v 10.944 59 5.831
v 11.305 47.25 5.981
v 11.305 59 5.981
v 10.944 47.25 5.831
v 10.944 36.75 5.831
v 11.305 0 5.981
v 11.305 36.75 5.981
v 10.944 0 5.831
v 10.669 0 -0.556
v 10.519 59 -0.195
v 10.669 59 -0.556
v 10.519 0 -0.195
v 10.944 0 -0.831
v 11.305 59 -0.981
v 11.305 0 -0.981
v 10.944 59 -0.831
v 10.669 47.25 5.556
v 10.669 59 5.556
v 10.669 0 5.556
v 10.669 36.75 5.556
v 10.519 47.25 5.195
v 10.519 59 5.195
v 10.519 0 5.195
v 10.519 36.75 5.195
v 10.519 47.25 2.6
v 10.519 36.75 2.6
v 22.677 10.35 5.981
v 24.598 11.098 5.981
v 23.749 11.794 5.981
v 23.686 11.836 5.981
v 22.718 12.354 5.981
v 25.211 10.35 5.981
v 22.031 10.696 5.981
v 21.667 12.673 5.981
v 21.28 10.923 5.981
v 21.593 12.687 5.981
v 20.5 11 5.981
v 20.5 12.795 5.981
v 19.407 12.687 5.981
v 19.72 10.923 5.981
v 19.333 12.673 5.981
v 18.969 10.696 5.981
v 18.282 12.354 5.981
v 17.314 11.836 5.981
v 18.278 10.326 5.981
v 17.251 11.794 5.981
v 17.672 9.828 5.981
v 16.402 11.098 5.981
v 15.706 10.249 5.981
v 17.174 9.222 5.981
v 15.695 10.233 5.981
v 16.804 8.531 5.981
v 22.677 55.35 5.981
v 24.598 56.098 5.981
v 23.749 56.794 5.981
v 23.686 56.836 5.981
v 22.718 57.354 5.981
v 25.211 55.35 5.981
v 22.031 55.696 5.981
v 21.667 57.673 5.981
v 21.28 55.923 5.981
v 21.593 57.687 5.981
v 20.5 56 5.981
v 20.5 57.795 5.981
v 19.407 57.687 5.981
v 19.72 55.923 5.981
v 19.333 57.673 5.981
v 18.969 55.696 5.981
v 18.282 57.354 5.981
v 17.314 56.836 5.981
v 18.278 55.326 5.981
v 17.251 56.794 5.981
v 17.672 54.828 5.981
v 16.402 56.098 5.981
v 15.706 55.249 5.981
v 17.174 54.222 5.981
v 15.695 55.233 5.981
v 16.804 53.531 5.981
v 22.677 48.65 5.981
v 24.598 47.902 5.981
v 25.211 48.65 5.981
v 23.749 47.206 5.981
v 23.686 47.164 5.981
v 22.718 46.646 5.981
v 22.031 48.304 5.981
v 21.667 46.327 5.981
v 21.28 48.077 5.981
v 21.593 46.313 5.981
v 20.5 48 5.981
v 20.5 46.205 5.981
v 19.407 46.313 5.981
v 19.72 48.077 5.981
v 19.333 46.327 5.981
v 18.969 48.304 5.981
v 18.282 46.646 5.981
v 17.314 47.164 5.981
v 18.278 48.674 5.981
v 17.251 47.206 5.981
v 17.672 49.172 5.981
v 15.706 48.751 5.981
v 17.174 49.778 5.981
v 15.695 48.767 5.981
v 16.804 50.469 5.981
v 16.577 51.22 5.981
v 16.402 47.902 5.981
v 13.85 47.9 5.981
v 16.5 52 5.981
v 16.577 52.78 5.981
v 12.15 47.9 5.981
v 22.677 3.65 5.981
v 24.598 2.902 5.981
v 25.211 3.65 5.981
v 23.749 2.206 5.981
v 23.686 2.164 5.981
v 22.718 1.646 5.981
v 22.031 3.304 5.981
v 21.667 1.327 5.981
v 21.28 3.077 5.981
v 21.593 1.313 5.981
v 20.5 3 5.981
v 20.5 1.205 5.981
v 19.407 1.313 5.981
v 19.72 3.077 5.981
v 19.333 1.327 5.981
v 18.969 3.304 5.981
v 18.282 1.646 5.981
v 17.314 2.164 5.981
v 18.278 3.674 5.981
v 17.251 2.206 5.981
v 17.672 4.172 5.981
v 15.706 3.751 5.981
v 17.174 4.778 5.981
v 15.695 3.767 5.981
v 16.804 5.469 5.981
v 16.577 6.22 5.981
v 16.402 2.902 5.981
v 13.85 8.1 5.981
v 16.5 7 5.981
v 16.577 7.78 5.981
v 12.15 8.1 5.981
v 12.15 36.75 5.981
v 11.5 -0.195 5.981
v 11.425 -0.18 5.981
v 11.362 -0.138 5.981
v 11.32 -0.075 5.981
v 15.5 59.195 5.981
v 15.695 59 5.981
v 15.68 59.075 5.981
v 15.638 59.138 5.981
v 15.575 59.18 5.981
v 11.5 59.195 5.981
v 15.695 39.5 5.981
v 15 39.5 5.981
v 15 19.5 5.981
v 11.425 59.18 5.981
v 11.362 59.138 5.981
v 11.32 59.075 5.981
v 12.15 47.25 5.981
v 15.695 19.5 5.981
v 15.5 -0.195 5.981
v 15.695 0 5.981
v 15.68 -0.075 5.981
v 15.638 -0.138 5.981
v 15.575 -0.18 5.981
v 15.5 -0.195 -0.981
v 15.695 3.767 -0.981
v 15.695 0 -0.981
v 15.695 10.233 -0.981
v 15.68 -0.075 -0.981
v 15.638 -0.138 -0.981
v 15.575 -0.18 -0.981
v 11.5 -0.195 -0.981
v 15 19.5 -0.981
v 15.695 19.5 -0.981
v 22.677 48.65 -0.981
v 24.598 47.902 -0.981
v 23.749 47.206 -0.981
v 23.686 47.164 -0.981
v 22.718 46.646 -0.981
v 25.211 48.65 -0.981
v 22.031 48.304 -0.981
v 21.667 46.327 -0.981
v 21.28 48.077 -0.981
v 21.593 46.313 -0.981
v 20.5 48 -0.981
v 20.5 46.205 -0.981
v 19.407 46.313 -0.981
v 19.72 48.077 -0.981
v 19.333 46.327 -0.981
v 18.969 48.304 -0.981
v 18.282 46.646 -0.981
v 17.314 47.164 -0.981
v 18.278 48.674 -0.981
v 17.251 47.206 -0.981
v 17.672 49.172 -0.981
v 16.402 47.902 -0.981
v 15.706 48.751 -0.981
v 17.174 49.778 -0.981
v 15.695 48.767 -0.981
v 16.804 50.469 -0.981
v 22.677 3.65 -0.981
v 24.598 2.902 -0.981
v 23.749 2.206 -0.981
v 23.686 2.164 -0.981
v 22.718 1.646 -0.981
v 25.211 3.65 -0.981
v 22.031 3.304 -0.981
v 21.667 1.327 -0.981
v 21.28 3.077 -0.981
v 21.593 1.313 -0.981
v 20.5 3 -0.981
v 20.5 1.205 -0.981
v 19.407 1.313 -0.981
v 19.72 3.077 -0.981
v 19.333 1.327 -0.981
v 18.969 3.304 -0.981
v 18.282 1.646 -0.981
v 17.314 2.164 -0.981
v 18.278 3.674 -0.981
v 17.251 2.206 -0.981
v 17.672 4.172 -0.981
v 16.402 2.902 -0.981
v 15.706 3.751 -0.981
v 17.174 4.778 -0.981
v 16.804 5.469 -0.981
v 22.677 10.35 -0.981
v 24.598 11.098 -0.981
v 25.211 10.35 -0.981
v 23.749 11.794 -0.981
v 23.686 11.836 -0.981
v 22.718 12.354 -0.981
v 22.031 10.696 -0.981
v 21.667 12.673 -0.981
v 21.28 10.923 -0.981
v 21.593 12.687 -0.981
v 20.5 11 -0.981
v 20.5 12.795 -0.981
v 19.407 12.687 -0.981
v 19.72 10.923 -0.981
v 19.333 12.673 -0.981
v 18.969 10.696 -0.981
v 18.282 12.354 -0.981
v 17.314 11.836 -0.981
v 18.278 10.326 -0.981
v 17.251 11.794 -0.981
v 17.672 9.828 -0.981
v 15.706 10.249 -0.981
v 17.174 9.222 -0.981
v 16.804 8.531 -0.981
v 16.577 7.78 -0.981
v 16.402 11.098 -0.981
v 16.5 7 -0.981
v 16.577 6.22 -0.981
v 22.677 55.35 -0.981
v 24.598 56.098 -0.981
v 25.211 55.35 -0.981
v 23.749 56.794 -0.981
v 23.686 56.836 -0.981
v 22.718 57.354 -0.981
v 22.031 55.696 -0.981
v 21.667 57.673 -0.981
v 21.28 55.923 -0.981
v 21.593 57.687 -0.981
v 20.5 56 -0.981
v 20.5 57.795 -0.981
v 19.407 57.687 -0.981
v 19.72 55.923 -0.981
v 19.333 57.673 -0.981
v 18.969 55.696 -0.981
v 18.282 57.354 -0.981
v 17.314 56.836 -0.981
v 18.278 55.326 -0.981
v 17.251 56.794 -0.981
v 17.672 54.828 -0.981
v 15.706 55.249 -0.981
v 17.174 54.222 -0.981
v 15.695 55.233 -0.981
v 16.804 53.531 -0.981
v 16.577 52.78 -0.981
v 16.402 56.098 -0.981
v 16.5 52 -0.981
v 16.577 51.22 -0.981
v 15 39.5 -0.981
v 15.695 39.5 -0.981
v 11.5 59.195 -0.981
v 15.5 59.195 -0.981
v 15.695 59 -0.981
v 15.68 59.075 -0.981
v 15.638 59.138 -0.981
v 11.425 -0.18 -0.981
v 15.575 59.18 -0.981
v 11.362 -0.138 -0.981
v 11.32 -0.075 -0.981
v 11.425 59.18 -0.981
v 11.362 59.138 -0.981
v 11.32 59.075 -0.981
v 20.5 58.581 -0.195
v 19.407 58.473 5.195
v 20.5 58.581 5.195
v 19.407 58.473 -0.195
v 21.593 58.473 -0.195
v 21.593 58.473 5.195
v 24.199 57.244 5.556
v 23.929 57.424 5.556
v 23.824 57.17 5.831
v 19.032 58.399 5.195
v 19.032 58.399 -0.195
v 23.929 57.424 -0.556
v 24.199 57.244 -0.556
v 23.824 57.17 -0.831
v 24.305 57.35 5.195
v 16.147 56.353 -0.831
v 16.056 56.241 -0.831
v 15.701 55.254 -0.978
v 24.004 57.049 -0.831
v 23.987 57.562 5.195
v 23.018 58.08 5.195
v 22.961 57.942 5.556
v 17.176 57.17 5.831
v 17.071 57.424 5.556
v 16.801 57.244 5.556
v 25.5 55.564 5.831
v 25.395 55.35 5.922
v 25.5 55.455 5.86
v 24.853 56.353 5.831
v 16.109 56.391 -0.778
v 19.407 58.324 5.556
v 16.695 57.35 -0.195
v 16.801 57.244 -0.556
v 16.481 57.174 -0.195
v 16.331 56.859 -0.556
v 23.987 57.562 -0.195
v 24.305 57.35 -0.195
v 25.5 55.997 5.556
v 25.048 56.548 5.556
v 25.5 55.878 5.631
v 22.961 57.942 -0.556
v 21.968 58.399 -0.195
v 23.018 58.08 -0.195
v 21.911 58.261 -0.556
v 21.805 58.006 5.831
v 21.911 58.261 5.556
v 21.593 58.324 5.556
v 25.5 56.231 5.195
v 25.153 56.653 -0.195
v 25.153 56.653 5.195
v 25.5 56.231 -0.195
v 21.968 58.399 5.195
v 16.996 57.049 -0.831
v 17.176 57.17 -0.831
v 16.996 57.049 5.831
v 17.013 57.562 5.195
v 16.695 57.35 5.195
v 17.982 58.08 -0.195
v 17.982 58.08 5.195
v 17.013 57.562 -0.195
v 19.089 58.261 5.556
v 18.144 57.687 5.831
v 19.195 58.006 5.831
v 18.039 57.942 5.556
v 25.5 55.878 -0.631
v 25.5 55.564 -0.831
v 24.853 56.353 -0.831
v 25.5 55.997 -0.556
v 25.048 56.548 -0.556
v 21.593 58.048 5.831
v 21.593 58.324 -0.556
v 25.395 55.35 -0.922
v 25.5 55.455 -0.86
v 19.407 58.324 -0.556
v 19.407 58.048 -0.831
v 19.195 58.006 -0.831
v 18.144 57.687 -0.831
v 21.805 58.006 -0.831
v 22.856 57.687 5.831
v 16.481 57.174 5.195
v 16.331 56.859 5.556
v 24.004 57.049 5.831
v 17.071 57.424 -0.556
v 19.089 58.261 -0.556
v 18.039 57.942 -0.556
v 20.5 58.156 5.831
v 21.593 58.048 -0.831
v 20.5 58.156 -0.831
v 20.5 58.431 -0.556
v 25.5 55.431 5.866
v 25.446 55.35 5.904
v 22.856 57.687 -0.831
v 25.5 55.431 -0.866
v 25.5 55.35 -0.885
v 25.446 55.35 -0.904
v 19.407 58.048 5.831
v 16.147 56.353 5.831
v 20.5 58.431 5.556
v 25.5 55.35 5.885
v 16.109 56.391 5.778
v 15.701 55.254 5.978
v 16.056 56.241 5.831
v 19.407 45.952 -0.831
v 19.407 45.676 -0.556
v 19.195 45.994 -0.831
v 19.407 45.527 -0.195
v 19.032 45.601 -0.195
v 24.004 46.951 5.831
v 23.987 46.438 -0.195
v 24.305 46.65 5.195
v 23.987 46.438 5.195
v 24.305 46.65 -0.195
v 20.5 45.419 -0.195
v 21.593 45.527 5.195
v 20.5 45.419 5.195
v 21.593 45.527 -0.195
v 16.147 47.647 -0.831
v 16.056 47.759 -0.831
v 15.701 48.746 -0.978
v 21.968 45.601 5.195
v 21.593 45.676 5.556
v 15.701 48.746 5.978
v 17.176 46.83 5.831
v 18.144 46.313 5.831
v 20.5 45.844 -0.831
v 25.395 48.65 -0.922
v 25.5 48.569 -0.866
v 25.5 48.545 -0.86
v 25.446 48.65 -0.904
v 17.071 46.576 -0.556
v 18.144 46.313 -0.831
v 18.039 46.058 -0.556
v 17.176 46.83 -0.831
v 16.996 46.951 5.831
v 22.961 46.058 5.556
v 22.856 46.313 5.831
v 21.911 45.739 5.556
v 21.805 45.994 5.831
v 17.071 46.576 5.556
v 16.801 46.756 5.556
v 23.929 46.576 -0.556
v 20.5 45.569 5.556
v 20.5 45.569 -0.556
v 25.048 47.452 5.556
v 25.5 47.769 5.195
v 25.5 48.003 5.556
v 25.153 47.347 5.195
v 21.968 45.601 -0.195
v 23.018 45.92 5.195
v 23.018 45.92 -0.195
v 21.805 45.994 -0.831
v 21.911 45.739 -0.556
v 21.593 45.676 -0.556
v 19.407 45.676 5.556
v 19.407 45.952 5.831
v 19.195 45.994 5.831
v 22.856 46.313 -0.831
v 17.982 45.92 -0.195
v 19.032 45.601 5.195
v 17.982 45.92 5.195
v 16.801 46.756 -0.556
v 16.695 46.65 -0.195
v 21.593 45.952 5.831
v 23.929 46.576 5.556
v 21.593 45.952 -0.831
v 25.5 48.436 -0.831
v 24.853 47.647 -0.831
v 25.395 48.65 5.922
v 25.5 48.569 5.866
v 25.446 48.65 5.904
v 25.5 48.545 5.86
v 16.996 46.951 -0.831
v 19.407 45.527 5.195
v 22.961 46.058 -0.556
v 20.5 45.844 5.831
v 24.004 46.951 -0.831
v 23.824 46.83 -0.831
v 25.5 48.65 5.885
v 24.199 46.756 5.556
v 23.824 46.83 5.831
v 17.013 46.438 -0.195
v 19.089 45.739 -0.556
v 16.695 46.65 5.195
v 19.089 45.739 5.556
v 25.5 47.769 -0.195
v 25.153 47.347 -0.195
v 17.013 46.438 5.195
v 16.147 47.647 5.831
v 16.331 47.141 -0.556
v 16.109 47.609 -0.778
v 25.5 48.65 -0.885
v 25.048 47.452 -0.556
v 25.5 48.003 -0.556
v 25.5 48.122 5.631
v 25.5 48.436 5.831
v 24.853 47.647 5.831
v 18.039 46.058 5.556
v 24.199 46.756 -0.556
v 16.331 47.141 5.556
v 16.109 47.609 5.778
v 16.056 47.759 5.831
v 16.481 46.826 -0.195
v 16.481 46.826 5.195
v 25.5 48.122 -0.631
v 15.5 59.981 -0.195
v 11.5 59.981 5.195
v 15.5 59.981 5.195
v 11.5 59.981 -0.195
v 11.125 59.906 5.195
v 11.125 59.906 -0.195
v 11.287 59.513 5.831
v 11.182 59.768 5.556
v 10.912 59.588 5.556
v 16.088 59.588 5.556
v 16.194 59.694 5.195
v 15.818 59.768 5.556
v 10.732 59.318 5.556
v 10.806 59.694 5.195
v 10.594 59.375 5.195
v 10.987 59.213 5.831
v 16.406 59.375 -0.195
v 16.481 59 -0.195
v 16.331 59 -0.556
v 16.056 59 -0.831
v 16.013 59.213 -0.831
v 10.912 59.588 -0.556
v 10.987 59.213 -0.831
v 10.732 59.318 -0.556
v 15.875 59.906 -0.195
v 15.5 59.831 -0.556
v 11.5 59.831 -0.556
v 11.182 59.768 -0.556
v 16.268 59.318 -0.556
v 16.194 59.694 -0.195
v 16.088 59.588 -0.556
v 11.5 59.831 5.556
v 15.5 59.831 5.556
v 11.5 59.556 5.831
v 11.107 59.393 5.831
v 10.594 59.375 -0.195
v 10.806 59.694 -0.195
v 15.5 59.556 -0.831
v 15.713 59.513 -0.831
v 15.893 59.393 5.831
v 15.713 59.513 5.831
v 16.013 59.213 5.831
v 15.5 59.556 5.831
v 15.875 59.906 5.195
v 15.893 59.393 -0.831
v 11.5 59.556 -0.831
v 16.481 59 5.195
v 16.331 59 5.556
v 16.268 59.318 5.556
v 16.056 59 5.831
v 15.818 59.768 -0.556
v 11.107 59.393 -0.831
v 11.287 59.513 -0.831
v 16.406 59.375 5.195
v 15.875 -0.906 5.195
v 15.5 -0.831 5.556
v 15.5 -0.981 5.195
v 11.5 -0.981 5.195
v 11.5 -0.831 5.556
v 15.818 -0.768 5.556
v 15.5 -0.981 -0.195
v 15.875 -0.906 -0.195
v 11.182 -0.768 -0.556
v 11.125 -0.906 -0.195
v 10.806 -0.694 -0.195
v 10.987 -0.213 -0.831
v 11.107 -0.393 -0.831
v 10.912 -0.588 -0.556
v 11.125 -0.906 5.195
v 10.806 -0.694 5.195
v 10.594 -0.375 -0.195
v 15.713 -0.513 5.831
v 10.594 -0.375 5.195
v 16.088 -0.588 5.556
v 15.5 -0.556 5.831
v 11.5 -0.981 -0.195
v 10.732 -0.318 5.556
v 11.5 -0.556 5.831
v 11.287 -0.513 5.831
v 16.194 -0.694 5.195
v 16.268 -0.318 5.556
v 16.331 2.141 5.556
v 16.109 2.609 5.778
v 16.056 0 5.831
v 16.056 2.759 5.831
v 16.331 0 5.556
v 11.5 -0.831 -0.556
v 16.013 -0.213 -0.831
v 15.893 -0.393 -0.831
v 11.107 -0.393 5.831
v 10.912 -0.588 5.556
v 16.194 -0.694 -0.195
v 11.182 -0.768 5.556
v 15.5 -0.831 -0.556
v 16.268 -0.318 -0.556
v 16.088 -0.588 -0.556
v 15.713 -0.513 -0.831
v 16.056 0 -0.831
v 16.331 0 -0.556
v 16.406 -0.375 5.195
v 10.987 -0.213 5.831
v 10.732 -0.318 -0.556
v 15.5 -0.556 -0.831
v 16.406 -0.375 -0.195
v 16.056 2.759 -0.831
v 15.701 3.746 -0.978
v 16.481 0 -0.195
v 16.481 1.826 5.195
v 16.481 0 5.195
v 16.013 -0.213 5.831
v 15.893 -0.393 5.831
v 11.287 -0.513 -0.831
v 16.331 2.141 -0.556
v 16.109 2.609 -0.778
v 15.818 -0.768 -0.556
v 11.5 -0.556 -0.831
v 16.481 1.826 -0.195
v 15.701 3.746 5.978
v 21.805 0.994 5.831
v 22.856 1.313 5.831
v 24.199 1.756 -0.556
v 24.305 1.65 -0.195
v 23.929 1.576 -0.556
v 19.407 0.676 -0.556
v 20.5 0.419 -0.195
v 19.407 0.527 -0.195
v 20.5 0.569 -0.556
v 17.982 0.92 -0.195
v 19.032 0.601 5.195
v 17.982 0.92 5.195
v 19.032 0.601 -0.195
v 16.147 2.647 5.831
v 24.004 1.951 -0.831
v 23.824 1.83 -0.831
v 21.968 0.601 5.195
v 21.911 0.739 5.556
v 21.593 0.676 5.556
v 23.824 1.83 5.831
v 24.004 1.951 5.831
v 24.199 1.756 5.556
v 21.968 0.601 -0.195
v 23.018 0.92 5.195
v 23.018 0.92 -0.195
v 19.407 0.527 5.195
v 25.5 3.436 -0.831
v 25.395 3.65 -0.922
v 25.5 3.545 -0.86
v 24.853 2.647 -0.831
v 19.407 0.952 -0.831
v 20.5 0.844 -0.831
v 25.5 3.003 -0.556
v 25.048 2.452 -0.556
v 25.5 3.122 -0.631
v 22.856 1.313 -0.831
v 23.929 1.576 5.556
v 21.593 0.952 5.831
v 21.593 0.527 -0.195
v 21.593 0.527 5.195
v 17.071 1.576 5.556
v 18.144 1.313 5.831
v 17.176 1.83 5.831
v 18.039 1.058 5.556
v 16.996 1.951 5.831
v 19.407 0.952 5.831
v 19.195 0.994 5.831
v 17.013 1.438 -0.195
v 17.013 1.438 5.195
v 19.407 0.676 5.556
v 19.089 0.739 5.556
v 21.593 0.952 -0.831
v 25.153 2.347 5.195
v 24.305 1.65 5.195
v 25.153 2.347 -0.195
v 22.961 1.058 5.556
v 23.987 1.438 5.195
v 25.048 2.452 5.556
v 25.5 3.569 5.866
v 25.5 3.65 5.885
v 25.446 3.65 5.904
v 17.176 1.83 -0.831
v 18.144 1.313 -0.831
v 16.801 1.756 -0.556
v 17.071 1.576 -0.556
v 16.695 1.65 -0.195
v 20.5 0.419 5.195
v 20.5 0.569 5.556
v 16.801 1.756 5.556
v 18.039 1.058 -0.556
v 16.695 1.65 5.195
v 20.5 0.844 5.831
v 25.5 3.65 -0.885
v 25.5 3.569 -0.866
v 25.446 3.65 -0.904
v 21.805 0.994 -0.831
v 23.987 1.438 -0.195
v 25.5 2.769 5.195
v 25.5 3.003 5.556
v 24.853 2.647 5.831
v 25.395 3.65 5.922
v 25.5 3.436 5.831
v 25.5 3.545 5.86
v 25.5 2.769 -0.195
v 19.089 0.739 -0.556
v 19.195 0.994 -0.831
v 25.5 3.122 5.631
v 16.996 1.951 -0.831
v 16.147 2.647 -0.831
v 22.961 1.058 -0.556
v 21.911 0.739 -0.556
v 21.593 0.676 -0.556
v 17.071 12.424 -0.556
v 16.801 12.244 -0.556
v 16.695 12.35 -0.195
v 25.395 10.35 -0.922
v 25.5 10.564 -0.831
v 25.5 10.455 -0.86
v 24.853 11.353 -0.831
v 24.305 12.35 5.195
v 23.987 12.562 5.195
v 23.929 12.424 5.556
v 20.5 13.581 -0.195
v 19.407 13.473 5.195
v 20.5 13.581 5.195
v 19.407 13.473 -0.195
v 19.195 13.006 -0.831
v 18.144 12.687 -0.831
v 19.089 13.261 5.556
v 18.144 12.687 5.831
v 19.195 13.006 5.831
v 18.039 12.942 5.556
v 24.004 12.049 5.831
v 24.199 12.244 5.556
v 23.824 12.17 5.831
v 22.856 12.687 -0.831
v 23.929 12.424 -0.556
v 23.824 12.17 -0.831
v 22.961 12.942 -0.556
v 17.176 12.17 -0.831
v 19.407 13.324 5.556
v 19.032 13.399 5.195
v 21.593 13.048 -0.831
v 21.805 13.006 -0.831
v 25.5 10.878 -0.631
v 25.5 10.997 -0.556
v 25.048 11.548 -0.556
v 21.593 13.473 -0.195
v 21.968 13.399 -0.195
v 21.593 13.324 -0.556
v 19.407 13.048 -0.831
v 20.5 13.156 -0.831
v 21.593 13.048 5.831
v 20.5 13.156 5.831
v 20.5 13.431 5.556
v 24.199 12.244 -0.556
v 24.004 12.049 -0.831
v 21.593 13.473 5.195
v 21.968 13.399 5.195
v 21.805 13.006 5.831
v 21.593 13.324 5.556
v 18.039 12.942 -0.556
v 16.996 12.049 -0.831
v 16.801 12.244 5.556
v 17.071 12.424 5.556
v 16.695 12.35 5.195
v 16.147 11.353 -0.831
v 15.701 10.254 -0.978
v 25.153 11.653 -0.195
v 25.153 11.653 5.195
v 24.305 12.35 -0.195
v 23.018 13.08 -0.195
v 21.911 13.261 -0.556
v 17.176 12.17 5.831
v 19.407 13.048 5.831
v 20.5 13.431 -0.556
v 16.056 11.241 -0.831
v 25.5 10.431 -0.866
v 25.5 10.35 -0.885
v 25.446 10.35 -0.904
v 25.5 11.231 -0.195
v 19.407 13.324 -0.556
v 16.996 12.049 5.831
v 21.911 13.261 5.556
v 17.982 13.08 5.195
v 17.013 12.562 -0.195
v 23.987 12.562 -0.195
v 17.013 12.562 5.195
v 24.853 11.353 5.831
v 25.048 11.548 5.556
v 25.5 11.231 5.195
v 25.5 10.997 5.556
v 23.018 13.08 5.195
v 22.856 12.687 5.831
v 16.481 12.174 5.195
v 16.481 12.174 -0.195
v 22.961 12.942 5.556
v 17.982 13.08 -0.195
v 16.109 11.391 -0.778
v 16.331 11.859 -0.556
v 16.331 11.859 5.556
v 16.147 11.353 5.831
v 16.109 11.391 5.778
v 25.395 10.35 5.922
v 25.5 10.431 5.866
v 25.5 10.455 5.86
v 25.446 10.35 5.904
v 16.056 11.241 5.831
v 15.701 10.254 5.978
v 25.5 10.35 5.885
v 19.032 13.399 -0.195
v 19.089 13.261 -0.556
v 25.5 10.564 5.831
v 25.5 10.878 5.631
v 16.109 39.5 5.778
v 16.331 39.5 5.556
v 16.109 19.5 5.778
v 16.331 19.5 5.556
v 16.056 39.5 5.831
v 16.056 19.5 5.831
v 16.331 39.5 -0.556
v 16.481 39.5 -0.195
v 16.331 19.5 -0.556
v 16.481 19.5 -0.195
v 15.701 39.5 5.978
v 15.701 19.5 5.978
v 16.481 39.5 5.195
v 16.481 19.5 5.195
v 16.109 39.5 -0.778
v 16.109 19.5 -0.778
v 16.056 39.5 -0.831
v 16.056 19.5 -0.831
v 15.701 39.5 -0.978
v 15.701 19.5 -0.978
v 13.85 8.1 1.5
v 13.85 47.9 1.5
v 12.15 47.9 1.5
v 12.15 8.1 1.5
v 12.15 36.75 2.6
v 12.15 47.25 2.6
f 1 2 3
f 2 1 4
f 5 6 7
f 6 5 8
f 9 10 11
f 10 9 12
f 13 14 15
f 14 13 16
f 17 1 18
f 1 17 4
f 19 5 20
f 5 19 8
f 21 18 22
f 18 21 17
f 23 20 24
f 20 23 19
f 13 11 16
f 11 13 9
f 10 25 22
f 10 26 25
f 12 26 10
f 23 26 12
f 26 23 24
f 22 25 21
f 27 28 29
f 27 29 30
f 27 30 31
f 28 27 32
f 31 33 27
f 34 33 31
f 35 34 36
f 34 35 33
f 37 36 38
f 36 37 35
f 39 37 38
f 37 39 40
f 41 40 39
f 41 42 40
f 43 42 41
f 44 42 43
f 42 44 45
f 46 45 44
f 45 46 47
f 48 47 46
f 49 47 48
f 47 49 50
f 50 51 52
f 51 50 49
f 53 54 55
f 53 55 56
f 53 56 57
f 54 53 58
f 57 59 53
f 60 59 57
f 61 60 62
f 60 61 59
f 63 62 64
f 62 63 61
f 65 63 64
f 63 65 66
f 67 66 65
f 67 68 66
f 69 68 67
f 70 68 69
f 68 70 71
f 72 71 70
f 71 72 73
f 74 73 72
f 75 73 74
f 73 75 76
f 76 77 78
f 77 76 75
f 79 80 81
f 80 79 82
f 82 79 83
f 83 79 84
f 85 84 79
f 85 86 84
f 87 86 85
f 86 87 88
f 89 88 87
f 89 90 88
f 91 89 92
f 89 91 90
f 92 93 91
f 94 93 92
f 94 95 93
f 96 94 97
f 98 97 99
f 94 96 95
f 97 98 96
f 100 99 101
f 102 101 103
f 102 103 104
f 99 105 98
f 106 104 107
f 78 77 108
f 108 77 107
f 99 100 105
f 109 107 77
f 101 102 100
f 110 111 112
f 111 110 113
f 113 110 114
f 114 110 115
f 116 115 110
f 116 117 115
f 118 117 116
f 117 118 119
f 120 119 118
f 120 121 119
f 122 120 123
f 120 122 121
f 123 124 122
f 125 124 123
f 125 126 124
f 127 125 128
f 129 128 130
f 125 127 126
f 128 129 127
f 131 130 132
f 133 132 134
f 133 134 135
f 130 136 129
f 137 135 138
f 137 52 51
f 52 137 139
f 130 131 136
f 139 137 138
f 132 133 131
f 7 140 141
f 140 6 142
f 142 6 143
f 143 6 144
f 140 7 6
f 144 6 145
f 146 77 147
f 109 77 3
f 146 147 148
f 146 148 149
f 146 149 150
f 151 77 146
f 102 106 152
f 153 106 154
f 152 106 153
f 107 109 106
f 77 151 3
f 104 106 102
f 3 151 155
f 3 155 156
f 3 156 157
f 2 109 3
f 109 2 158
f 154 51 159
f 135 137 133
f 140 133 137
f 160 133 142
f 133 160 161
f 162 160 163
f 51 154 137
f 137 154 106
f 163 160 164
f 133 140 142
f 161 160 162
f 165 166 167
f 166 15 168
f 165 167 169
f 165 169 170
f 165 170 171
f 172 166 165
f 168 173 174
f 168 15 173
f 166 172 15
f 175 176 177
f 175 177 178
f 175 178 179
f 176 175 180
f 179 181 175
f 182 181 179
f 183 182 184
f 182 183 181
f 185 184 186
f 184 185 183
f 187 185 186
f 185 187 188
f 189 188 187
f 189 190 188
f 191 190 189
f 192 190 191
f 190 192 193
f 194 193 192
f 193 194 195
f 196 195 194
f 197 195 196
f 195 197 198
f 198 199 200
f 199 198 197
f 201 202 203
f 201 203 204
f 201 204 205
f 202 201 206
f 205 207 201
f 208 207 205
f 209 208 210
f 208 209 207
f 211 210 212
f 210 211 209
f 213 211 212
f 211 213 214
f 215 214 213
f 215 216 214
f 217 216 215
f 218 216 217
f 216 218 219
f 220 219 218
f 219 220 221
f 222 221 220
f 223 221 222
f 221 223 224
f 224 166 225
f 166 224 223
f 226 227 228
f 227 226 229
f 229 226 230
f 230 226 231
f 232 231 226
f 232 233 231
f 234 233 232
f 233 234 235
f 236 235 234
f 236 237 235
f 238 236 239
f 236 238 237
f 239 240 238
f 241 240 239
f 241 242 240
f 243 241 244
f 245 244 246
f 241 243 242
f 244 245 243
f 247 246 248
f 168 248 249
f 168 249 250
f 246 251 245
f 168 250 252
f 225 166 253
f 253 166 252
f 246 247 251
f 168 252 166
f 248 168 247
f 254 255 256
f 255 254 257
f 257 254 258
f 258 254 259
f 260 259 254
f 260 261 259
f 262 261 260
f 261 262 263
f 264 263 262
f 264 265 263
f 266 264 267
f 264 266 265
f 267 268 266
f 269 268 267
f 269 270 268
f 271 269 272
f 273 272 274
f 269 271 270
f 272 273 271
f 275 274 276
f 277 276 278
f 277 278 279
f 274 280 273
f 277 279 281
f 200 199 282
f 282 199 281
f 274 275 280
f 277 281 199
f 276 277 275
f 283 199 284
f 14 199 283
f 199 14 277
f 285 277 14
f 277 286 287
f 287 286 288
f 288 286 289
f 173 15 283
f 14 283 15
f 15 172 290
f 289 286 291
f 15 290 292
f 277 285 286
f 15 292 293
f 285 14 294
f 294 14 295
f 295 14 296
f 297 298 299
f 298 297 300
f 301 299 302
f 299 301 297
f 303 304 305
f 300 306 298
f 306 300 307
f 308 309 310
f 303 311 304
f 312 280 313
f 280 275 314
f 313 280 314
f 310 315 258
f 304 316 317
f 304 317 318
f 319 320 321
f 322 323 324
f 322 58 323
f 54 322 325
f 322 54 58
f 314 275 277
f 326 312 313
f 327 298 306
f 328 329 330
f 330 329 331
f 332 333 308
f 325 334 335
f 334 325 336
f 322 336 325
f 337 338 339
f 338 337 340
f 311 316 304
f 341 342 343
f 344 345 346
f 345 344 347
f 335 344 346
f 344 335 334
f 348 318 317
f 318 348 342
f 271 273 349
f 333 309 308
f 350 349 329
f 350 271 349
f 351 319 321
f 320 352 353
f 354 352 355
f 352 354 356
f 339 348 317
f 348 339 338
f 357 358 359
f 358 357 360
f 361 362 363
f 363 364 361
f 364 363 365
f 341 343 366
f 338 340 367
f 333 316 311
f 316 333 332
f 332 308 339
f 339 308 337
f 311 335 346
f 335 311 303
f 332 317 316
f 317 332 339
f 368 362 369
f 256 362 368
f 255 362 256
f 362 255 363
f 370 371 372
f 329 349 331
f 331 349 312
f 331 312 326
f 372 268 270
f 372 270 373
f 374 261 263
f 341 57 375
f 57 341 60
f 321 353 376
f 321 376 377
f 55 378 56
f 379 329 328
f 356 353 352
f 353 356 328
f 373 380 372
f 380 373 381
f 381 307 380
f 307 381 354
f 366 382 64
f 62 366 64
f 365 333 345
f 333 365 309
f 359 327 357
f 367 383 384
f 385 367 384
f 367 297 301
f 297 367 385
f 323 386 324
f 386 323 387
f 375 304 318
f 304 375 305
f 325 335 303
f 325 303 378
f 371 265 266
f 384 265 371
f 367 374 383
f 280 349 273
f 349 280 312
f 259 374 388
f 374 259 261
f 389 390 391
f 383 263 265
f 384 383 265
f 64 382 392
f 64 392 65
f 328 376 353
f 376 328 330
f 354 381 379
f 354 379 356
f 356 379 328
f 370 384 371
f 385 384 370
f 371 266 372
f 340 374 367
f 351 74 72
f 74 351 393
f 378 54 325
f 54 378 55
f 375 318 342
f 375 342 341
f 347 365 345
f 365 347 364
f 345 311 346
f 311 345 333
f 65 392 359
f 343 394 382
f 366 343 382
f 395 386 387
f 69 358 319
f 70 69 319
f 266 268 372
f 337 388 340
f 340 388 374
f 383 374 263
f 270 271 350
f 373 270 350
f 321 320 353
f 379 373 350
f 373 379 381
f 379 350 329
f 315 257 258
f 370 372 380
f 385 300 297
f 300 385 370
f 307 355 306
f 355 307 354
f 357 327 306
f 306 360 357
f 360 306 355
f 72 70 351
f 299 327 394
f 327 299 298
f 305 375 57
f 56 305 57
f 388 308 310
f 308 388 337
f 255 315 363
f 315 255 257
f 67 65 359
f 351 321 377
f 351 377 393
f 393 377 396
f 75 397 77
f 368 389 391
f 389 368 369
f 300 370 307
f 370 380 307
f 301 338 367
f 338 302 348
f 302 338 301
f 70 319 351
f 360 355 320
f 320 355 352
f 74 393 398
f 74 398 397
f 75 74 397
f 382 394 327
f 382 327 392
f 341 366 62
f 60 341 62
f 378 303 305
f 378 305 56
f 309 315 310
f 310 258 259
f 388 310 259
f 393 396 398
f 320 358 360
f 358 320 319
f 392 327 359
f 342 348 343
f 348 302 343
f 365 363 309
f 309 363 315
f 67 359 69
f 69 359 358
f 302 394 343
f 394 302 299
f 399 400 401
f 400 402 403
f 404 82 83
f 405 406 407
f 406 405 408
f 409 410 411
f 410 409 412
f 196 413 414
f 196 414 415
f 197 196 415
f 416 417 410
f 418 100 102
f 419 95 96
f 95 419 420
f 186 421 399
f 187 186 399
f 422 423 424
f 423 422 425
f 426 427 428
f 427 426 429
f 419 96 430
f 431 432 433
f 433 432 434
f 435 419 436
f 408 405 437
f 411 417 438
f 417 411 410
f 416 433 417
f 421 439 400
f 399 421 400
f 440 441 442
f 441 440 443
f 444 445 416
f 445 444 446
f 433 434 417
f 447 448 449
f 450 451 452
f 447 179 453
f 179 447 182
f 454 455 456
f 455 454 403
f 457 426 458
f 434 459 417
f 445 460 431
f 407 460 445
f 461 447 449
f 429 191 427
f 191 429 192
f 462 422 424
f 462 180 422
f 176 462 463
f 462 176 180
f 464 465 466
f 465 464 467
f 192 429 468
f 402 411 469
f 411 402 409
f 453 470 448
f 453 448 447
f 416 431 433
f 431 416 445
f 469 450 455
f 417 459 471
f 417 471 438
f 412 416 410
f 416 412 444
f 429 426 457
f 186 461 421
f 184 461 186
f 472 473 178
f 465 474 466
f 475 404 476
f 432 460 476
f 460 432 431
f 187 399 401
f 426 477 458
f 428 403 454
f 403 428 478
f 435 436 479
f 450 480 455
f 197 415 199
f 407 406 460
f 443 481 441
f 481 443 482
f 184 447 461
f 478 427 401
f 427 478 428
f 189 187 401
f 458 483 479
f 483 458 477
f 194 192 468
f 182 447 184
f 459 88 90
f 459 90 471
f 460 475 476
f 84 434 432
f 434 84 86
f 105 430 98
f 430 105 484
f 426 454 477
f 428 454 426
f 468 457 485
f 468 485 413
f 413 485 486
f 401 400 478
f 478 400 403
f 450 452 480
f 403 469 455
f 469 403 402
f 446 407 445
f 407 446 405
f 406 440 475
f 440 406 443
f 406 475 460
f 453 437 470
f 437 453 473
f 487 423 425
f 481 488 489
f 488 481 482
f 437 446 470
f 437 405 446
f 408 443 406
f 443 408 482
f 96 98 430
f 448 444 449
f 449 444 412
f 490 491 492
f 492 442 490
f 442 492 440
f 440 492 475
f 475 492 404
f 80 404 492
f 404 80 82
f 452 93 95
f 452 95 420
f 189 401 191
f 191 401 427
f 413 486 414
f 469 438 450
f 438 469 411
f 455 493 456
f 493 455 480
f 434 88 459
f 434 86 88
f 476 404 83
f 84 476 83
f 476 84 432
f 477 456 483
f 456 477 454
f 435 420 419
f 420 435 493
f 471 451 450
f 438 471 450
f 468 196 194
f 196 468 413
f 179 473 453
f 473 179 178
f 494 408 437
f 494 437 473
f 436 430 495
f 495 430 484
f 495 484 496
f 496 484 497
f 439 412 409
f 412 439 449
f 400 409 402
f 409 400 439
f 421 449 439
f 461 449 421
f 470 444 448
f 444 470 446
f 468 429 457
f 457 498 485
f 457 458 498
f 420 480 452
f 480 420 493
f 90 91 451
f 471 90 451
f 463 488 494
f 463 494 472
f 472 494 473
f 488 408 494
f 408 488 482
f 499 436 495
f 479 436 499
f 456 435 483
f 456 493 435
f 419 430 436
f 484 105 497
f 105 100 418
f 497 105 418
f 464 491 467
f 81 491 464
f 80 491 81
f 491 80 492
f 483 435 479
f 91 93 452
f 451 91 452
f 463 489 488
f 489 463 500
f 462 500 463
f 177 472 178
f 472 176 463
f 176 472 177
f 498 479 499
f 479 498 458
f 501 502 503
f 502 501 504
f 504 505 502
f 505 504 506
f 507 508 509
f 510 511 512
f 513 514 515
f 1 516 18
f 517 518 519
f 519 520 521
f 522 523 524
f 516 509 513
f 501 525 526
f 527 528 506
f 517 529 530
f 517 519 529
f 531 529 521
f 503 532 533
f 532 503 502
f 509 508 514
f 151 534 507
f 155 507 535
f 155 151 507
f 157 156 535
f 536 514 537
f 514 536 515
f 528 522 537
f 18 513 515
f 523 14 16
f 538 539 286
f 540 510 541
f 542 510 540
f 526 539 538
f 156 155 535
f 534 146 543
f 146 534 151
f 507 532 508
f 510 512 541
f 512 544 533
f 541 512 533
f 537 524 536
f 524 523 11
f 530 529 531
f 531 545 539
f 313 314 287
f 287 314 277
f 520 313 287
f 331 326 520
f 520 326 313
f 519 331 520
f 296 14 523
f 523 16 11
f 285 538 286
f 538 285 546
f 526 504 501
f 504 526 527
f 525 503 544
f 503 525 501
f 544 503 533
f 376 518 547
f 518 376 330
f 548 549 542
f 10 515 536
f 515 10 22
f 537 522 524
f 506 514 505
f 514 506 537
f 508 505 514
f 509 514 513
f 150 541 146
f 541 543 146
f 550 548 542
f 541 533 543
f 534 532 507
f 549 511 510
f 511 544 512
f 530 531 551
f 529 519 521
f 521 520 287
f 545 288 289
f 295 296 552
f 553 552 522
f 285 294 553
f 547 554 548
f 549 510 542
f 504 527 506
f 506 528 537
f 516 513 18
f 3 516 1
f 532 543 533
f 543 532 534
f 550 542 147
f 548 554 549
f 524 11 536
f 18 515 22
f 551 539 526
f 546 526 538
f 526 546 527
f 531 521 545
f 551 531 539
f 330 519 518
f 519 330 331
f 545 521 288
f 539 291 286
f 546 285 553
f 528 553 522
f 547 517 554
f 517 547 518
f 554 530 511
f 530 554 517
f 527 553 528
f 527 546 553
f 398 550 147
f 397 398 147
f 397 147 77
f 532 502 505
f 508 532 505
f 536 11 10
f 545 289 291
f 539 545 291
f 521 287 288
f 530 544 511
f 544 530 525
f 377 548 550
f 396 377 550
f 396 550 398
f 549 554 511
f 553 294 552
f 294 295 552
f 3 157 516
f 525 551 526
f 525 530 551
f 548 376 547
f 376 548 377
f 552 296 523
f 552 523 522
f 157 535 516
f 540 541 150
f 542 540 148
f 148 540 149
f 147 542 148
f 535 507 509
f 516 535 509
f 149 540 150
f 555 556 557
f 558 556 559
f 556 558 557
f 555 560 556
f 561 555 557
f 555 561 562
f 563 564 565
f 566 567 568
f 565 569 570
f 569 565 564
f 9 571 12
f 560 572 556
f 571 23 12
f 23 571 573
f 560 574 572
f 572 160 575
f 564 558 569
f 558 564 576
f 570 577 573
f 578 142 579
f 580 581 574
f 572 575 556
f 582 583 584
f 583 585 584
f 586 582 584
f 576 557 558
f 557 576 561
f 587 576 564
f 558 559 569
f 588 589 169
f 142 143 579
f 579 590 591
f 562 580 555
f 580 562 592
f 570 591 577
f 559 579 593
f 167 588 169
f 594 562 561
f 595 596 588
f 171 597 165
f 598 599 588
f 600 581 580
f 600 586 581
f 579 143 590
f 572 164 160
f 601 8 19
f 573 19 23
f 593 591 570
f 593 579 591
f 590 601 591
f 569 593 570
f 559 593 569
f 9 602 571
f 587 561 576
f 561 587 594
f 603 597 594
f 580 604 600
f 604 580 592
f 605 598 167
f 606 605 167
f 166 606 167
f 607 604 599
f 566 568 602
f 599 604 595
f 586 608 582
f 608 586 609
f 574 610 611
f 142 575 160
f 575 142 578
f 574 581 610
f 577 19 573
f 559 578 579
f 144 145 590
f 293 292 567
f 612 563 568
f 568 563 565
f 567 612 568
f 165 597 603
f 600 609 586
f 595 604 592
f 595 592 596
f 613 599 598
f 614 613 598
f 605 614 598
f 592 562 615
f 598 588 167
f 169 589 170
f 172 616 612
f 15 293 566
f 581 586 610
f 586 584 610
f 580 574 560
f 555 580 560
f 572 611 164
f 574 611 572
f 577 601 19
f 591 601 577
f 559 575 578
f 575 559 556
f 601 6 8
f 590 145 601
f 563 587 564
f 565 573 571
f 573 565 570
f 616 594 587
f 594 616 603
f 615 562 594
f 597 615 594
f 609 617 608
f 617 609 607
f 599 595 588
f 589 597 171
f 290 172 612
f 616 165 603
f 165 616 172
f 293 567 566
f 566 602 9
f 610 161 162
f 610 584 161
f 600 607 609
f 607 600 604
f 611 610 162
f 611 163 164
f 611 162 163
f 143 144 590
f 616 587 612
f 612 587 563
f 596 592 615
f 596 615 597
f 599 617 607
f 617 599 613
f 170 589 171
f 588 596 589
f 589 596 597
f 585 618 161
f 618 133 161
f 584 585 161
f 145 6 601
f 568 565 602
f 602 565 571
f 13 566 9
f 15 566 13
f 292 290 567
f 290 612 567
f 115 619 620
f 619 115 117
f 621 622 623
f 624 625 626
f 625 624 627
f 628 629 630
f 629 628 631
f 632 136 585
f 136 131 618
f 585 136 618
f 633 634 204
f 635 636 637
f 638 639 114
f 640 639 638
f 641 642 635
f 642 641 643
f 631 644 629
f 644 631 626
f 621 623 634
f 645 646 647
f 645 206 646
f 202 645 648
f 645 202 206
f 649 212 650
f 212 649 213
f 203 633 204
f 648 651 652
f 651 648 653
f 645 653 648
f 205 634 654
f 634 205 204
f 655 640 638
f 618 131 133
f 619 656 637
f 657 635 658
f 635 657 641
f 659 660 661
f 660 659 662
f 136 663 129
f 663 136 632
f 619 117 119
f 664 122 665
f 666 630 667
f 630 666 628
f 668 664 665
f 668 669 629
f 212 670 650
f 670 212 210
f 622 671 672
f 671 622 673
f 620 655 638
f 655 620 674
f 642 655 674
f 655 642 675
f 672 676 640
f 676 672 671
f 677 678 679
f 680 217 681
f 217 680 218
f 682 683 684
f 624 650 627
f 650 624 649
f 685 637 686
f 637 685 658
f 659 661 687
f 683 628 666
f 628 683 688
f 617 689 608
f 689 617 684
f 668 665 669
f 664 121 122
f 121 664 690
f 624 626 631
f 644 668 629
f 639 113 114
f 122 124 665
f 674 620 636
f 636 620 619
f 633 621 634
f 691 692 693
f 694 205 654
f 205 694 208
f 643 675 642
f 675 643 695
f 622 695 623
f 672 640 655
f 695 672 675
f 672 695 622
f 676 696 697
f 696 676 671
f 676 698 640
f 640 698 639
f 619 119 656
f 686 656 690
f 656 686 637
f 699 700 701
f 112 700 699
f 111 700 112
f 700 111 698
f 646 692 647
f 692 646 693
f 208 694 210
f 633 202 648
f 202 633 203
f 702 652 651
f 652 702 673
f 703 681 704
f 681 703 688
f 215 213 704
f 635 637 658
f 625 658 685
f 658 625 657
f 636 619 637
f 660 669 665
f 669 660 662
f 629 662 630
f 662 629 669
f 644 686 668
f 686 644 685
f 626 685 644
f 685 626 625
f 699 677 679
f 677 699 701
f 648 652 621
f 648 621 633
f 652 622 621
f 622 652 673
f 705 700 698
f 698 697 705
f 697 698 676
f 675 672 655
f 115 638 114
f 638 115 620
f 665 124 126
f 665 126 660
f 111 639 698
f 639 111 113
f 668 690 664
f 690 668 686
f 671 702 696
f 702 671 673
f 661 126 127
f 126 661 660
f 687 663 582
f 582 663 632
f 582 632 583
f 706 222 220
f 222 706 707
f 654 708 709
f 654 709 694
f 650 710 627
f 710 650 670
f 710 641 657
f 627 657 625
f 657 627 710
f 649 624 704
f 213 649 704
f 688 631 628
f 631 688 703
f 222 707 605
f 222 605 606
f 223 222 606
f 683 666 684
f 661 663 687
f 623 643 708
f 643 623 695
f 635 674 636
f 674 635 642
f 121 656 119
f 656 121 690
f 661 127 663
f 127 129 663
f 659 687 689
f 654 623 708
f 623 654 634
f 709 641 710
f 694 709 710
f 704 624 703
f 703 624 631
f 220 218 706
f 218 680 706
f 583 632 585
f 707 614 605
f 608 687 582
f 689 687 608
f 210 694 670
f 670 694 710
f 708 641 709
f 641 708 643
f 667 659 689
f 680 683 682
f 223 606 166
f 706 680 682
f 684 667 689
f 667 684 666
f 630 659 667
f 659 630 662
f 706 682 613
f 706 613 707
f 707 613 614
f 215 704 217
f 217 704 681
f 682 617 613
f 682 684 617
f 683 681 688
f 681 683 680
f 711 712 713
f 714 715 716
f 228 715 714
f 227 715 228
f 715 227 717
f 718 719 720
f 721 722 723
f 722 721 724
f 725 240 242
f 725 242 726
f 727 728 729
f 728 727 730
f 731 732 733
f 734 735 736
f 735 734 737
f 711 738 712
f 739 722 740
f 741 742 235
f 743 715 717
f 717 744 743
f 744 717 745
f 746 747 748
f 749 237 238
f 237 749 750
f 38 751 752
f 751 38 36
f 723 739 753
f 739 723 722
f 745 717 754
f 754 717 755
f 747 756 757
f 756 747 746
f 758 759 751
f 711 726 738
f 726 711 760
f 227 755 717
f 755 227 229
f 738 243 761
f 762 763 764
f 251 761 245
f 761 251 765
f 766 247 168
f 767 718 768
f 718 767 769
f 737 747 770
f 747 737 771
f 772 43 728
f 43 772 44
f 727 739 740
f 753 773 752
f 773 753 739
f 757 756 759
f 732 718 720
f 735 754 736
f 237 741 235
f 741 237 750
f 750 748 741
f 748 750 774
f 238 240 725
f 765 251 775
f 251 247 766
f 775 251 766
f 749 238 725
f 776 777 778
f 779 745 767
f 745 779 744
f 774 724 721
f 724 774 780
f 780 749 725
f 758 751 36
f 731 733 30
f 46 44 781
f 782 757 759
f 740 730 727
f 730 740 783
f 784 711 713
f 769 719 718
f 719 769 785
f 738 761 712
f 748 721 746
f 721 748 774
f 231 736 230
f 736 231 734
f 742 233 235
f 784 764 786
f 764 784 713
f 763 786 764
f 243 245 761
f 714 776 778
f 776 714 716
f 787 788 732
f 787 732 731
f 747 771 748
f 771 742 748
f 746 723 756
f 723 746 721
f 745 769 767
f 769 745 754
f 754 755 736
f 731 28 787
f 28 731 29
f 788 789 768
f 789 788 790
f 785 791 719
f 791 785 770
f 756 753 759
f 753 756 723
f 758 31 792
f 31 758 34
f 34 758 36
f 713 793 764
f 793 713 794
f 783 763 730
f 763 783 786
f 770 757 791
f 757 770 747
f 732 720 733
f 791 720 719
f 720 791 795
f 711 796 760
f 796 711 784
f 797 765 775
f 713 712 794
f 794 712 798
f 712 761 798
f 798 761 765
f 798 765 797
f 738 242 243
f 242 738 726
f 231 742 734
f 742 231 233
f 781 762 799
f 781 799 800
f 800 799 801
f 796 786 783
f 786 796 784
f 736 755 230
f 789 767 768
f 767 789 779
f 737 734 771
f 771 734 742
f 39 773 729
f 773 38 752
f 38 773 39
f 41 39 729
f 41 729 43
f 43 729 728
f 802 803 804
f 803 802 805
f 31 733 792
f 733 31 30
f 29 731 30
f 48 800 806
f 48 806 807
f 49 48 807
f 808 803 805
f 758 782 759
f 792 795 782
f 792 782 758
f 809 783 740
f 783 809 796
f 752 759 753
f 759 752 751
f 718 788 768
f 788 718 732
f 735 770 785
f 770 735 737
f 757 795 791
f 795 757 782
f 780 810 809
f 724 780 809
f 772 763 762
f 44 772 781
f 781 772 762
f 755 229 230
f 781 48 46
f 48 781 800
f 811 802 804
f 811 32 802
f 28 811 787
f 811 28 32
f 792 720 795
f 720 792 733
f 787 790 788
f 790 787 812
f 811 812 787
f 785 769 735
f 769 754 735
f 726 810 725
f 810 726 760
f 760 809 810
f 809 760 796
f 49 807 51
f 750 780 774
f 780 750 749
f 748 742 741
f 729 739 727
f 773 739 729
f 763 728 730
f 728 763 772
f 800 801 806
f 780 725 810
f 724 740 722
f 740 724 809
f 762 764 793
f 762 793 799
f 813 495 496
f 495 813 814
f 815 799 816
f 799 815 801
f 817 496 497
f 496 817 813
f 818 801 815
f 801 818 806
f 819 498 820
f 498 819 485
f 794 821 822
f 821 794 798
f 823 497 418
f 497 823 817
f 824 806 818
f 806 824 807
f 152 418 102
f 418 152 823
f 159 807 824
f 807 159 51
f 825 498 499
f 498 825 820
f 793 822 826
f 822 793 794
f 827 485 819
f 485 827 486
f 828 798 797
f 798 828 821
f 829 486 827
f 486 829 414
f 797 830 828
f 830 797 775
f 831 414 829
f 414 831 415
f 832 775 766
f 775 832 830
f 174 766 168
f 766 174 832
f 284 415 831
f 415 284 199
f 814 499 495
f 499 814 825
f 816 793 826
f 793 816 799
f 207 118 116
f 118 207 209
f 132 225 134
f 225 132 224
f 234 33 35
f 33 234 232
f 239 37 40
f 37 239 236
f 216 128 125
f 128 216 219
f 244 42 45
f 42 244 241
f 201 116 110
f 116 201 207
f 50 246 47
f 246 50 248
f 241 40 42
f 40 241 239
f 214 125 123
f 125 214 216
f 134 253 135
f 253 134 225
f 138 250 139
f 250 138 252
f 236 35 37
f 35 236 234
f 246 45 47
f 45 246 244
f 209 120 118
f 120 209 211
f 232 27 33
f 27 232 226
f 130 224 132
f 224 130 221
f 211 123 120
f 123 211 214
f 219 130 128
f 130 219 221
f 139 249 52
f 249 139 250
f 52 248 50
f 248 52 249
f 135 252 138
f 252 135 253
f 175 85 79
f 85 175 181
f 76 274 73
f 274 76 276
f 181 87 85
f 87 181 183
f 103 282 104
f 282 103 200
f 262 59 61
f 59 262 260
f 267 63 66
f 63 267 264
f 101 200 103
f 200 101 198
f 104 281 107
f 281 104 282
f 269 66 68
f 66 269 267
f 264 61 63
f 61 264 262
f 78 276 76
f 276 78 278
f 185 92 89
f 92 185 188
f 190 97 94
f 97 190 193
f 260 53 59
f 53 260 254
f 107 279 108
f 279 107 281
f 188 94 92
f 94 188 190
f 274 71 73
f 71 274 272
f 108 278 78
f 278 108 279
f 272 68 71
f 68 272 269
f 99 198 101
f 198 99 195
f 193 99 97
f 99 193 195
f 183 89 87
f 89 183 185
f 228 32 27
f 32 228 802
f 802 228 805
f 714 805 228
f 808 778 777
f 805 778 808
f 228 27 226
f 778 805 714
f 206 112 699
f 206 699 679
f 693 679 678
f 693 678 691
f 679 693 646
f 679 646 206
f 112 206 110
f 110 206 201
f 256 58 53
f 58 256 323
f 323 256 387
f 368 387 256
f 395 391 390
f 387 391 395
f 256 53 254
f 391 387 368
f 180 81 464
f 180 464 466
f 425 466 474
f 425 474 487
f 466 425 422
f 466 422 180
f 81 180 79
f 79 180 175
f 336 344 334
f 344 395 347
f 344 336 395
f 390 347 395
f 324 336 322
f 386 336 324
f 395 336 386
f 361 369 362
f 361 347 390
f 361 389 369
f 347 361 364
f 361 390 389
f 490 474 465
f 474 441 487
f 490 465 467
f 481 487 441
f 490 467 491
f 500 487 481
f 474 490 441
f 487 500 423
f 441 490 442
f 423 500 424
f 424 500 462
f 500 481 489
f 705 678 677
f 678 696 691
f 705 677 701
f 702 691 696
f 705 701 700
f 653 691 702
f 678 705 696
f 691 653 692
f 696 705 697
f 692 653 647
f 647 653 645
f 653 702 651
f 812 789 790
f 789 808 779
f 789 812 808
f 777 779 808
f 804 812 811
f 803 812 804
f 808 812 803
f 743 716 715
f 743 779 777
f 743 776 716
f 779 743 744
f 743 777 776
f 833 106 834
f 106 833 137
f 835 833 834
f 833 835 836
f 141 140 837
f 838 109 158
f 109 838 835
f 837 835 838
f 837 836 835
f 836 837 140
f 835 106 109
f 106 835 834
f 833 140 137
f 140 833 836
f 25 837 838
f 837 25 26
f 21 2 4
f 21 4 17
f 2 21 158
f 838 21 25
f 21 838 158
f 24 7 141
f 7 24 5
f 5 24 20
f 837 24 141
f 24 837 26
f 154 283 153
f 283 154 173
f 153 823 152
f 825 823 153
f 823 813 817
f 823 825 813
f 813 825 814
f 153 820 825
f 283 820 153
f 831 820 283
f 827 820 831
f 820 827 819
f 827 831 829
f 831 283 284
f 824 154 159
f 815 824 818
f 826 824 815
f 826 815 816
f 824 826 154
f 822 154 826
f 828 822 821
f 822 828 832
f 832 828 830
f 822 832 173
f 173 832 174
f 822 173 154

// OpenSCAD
//-- Prusa i3 X-axis Makerbot-style endstop holder
//-- by AndrewBCN - Barcelona, Spain - December 2014
//-- Remix from i3 X Endstop Mount for Sainsmart endstops
//-- by Abby Jones, thing #491859
//-- Note that there are various similar designs on
//-- Thingiverse, so it's difficult to provide proper
//-- attribution. Oh well, I do what I can...
//-- GPLV3

//-- import test
//-- needs the file http://www.thingiverse.com/download:491859

$fn=32;

//-- Modules

module xeh() {
  // part imported, rotated (for comparison)
  rotate([0,0,0]) translate([0,38,0]) import("i3xend.stl");
}

module i3endhold1() {
  // base shape
  translate([10+1.5,0,0]) cube([4,59,5]); 
  translate([10+4.5+6,7,0]) cylinder(r=5.6,h=5);
  translate([10+4.5+6,45+7,0]) cylinder(r=5.6,h=5);
}
module i3endhold2() {
  // beautify (takes a minute or so to calculate)
  minkowski() {
    i3endhold1();
    sphere(r=1, $fn=16);
  }
}
module i3endhold3() {
  difference() { 
    i3endhold2();
    // holes and cutouts
    translate([10+4.5+6,7,-1]) cylinder(r=4,h=20);
    translate([10+4.5+6,45+7,-1]) cylinder(r=4,h=20);
    translate([10+4.5+13,7,4]) cube([15,6.7,10],center=true); 
    translate([10+4.5+13,45+7,4]) cube([15,6.7,10],center=true); 
    translate([10+4.5+13+5.5,32,4]) cube([15,65,10],center=true);
    // slot for mechanical endstop
    translate([10+3,28,3.9]) cube([1.7,39.8,4.8],center=true); 
    translate([10,42,5]) cube([6,10.5,4.8],center=true);
    // slot for belt, around 1.5mm
    translate([10+1.5+4+1,29.5,0]) cube([3,20,12],center=true); 
  }
}
//-- Print the part
// xeh();
i3endhold3();
